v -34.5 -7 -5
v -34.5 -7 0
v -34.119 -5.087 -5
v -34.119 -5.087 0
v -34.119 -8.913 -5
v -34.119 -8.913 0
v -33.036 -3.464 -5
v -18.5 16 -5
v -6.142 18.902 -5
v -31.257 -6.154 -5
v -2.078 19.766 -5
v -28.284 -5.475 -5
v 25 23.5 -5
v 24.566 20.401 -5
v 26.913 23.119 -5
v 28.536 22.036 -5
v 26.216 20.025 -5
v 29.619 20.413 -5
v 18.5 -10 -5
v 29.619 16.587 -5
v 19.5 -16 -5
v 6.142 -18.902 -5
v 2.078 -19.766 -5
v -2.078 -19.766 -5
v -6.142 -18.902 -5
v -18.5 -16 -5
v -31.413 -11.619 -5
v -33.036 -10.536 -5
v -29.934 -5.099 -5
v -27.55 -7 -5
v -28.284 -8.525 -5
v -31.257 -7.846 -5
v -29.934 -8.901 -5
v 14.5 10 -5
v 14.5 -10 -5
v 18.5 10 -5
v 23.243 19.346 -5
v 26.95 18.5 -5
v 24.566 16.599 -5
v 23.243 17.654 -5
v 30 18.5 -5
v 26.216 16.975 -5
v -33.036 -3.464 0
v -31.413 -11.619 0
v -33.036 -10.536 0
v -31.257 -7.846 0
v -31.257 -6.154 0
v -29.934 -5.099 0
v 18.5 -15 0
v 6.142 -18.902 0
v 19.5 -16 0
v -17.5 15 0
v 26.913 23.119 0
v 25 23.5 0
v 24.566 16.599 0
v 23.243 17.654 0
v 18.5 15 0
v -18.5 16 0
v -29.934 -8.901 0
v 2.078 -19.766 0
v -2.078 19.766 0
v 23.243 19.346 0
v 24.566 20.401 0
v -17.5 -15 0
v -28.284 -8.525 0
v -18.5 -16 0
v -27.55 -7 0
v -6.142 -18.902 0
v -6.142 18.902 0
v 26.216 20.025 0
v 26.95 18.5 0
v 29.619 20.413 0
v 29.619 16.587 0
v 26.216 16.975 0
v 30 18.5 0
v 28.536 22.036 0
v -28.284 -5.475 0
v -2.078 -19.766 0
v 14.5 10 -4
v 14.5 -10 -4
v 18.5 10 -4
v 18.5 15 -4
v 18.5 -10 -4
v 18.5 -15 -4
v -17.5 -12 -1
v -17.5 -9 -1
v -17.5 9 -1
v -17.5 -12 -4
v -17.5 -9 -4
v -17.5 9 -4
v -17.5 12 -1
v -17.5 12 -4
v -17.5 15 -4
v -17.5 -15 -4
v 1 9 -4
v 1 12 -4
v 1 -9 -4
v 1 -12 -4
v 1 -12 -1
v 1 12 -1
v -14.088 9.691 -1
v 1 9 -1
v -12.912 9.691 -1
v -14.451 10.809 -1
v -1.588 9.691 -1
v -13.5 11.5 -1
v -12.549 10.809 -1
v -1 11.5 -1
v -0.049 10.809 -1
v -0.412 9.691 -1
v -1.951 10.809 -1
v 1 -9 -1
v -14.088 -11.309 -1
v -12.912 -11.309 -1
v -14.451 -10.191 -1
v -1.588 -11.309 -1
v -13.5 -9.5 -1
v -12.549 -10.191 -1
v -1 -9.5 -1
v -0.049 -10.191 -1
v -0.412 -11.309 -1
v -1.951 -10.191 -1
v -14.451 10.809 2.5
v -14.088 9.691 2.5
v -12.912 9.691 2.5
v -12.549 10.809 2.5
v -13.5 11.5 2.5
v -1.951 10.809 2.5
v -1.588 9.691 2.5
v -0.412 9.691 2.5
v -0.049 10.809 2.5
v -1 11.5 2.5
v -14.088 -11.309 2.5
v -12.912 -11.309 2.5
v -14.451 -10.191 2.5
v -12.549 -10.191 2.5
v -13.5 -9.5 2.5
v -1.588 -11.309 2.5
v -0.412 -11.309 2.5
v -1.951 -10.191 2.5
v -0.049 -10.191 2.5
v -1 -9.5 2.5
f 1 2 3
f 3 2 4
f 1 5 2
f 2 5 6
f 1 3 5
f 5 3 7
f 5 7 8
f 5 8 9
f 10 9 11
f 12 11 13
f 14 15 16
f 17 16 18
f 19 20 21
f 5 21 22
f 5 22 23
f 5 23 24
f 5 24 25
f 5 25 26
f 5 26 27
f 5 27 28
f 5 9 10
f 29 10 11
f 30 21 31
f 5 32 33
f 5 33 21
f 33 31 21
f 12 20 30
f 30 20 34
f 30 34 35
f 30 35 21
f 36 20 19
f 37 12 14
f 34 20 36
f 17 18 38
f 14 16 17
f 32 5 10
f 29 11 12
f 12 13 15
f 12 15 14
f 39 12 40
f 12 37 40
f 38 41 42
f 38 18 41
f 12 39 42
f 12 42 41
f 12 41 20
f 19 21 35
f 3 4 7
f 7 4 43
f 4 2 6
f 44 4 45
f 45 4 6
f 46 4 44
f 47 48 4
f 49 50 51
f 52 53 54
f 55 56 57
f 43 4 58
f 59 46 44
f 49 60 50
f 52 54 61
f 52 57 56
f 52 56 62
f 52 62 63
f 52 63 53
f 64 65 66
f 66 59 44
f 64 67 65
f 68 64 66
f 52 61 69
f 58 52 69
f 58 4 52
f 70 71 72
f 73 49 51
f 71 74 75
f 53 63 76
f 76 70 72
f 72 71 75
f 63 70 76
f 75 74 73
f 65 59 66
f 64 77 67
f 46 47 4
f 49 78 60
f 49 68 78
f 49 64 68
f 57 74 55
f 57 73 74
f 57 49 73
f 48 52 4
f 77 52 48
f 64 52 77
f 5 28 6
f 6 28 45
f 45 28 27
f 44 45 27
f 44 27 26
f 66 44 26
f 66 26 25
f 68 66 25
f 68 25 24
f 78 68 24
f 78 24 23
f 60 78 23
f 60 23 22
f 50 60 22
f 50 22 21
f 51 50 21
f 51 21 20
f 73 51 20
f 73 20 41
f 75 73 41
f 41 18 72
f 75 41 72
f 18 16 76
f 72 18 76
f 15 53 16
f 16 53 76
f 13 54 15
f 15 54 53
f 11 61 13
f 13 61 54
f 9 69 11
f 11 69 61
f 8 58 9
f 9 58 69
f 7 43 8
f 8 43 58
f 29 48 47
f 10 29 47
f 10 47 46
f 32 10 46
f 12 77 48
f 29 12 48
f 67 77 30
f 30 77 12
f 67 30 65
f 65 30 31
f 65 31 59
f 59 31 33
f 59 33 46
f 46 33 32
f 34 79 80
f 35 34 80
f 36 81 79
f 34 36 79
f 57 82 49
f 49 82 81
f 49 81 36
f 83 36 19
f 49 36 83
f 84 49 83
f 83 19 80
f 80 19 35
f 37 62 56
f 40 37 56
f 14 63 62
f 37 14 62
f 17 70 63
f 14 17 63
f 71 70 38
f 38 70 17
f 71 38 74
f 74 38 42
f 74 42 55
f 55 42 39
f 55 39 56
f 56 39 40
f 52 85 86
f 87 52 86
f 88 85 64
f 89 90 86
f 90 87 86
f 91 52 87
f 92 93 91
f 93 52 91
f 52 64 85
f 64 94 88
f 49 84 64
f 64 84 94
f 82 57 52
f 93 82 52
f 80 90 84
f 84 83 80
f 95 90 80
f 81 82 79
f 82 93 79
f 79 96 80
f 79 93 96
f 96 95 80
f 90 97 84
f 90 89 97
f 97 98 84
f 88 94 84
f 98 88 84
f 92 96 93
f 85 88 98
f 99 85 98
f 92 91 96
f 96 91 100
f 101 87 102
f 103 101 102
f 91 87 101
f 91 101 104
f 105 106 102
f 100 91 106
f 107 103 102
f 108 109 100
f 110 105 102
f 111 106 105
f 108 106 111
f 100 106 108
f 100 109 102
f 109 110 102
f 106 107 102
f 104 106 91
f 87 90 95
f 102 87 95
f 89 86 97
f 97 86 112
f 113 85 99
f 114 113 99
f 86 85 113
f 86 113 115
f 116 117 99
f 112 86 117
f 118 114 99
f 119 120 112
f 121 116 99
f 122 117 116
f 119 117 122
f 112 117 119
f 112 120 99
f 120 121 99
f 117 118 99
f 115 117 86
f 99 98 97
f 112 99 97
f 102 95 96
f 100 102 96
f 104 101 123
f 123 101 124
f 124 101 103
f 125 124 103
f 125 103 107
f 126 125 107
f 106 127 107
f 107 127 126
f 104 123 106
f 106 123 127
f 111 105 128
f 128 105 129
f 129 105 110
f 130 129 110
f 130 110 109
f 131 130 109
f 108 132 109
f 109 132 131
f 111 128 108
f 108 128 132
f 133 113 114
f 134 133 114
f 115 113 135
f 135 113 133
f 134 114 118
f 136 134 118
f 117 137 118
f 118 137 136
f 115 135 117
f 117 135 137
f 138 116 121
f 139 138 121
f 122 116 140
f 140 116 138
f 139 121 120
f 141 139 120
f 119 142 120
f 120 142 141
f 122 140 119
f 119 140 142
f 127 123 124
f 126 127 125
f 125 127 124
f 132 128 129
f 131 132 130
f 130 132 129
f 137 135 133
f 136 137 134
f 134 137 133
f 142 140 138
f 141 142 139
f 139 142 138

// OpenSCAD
// Camera module telescope interface backplate.

// Make the values explicit since we are not running customizer
Drawtube_OD_inches_explicit = 1.25;
part_explicit="backplate";

include <pipiece.scad>
